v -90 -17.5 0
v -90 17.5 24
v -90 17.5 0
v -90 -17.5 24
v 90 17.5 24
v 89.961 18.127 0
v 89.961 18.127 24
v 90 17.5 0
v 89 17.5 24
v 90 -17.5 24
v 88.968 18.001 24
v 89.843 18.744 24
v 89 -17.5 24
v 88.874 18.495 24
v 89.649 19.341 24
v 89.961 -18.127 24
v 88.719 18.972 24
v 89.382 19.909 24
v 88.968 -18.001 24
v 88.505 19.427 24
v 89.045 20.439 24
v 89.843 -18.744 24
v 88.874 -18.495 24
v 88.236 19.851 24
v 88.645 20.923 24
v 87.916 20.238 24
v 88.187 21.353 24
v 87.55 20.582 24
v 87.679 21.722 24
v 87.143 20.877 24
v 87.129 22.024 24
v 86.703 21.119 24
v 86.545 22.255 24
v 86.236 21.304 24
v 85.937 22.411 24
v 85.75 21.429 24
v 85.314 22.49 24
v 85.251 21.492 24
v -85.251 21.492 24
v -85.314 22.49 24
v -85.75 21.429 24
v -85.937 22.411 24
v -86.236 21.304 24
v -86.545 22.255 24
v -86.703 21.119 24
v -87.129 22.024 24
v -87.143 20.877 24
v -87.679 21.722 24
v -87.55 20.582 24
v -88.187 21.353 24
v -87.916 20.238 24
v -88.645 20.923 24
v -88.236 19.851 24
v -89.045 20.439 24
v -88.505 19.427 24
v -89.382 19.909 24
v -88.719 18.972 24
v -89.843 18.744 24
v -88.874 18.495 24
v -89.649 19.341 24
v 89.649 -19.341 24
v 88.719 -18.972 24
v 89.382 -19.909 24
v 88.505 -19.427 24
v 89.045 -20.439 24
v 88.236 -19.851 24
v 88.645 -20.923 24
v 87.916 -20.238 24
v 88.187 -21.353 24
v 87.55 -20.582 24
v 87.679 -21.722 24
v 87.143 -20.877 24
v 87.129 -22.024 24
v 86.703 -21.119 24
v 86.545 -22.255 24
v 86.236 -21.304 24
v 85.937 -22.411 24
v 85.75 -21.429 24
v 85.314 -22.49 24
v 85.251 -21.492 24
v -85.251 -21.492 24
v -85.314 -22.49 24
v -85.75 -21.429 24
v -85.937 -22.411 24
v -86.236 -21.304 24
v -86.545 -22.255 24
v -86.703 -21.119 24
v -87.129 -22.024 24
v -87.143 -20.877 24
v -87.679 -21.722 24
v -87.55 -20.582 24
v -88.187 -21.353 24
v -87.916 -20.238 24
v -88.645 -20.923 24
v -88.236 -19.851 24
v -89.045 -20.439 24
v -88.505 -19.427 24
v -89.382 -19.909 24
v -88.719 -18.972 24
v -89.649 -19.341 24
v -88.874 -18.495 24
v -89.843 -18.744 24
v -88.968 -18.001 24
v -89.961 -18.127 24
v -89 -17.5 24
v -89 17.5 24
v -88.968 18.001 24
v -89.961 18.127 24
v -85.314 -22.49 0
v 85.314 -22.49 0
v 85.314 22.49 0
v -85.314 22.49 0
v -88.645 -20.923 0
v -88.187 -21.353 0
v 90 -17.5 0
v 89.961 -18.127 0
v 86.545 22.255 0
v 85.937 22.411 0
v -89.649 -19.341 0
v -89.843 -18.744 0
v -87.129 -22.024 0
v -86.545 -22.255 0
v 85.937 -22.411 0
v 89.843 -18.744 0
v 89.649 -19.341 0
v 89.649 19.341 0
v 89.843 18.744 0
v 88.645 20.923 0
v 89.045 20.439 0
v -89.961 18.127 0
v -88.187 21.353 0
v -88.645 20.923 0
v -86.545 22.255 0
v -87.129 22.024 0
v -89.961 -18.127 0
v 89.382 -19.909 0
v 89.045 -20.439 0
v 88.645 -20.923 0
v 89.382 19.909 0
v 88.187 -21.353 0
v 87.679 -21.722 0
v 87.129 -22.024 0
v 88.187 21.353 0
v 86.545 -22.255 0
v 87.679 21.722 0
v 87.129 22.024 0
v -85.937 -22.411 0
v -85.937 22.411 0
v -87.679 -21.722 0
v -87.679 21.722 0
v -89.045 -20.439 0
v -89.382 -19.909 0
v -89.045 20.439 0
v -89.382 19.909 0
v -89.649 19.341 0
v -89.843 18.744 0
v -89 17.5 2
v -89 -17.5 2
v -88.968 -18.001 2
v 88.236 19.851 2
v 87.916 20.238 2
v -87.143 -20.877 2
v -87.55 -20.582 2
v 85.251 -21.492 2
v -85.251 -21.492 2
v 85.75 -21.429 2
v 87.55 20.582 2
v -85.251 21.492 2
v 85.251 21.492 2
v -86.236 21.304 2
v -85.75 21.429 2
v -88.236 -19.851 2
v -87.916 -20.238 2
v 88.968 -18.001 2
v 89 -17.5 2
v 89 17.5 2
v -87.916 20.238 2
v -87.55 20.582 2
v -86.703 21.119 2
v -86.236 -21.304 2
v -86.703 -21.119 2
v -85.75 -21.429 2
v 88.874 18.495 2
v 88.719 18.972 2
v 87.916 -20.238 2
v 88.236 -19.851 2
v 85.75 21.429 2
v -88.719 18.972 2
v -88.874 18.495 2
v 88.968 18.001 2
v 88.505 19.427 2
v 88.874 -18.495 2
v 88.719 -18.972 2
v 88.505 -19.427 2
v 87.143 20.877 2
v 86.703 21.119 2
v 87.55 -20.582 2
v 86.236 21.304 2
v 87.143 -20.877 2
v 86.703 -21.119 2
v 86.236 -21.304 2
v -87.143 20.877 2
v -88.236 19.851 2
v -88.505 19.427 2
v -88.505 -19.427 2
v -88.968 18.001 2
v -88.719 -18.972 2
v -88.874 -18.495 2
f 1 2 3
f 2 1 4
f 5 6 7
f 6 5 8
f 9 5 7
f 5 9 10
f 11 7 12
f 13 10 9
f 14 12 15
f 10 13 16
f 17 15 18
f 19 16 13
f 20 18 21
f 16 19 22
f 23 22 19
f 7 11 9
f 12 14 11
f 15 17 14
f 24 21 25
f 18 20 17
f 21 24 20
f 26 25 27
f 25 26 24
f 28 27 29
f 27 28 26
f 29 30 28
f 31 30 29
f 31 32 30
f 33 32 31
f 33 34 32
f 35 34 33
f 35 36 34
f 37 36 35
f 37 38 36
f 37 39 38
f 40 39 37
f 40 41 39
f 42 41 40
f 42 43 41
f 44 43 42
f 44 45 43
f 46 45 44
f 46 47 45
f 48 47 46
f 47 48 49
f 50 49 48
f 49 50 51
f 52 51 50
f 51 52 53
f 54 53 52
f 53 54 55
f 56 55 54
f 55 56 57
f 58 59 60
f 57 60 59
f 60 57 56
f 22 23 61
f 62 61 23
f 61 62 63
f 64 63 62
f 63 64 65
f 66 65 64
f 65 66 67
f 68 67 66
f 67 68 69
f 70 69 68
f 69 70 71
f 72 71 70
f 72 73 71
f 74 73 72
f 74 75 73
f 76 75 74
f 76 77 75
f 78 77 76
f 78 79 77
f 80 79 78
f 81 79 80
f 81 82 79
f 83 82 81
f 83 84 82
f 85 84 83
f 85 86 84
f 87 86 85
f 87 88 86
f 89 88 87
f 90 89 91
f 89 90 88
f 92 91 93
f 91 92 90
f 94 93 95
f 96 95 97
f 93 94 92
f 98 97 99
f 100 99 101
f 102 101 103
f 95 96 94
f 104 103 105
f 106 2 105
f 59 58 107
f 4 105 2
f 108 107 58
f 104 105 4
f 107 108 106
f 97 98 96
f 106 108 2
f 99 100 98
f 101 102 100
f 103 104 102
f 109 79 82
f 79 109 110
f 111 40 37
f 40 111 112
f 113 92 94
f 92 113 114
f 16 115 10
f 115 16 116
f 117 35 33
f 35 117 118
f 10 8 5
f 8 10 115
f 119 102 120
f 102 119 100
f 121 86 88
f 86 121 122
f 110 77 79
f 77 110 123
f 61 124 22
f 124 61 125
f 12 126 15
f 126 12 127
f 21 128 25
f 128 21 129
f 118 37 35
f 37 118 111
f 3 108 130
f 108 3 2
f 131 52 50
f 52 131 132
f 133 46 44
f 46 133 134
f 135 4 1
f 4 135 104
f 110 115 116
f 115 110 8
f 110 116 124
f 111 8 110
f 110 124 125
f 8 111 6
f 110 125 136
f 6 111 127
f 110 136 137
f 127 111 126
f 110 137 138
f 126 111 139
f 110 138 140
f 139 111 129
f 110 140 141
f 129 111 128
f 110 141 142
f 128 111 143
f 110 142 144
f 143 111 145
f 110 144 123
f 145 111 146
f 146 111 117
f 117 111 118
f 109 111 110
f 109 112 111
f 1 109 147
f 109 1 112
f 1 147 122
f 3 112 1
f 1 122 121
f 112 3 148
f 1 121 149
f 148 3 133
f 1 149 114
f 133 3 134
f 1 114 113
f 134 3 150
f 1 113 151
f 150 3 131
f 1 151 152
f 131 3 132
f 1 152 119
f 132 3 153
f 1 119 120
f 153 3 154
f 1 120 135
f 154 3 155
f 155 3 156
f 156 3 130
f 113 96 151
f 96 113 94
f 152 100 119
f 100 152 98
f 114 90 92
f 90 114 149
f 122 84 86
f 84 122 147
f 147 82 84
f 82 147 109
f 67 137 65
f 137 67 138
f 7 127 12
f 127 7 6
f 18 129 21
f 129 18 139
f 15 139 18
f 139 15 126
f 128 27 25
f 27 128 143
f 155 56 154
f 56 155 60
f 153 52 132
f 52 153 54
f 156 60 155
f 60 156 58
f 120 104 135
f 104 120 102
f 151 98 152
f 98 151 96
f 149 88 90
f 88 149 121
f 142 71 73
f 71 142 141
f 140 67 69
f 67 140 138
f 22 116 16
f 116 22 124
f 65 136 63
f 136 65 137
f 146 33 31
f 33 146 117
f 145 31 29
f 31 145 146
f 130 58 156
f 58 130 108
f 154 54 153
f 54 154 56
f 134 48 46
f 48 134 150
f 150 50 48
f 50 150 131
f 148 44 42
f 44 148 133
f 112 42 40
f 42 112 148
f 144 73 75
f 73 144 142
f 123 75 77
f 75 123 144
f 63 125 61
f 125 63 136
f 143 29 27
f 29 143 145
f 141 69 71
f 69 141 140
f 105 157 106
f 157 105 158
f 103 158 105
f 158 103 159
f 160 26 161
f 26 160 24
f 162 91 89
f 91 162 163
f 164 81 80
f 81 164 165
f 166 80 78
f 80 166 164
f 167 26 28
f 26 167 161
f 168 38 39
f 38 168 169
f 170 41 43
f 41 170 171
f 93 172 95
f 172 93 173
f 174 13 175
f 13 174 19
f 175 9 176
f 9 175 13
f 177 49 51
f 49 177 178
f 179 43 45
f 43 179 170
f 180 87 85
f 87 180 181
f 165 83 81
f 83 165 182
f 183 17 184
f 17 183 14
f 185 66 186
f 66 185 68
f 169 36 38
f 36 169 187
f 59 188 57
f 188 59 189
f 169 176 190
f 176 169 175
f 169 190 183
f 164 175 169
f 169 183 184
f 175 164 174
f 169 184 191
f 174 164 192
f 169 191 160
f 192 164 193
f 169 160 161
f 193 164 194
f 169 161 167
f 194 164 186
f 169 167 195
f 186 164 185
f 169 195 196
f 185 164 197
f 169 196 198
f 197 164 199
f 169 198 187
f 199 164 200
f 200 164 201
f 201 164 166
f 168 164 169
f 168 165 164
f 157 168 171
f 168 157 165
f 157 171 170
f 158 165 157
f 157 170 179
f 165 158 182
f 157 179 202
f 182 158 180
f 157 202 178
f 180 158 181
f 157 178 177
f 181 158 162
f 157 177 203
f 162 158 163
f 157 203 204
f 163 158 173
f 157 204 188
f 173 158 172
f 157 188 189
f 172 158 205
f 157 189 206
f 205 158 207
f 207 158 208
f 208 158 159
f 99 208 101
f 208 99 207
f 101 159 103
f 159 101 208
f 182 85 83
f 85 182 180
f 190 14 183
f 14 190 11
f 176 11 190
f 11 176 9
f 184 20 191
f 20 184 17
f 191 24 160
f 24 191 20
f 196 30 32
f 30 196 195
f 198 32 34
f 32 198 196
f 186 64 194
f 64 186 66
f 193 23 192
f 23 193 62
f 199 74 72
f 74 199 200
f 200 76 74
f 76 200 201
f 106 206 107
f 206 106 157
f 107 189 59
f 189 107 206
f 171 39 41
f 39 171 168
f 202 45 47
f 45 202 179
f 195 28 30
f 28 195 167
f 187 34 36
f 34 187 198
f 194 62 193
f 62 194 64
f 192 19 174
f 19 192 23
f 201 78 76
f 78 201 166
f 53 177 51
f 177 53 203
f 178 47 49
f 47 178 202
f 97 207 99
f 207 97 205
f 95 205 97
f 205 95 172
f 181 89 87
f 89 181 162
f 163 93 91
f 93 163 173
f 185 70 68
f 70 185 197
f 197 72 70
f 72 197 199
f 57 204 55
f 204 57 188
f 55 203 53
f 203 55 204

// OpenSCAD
$fn = 50;


difference() {
	union() {
		hull() {
			translate(v = [-85.0000000000, 17.5000000000, 0]) {
				cylinder(h = 24, r = 5);
			}
			translate(v = [85.0000000000, 17.5000000000, 0]) {
				cylinder(h = 24, r = 5);
			}
			translate(v = [-85.0000000000, -17.5000000000, 0]) {
				cylinder(h = 24, r = 5);
			}
			translate(v = [85.0000000000, -17.5000000000, 0]) {
				cylinder(h = 24, r = 5);
			}
		}
	}
	union() {
		translate(v = [0, 0, 2]) {
			hull() {
				translate(v = [-85.0000000000, 17.5000000000, 0]) {
					cylinder(h = 22, r = 4);
				}
				translate(v = [85.0000000000, 17.5000000000, 0]) {
					cylinder(h = 22, r = 4);
				}
				translate(v = [-85.0000000000, -17.5000000000, 0]) {
					cylinder(h = 22, r = 4);
				}
				translate(v = [85.0000000000, -17.5000000000, 0]) {
					cylinder(h = 22, r = 4);
				}
			}
		}
	}
}
